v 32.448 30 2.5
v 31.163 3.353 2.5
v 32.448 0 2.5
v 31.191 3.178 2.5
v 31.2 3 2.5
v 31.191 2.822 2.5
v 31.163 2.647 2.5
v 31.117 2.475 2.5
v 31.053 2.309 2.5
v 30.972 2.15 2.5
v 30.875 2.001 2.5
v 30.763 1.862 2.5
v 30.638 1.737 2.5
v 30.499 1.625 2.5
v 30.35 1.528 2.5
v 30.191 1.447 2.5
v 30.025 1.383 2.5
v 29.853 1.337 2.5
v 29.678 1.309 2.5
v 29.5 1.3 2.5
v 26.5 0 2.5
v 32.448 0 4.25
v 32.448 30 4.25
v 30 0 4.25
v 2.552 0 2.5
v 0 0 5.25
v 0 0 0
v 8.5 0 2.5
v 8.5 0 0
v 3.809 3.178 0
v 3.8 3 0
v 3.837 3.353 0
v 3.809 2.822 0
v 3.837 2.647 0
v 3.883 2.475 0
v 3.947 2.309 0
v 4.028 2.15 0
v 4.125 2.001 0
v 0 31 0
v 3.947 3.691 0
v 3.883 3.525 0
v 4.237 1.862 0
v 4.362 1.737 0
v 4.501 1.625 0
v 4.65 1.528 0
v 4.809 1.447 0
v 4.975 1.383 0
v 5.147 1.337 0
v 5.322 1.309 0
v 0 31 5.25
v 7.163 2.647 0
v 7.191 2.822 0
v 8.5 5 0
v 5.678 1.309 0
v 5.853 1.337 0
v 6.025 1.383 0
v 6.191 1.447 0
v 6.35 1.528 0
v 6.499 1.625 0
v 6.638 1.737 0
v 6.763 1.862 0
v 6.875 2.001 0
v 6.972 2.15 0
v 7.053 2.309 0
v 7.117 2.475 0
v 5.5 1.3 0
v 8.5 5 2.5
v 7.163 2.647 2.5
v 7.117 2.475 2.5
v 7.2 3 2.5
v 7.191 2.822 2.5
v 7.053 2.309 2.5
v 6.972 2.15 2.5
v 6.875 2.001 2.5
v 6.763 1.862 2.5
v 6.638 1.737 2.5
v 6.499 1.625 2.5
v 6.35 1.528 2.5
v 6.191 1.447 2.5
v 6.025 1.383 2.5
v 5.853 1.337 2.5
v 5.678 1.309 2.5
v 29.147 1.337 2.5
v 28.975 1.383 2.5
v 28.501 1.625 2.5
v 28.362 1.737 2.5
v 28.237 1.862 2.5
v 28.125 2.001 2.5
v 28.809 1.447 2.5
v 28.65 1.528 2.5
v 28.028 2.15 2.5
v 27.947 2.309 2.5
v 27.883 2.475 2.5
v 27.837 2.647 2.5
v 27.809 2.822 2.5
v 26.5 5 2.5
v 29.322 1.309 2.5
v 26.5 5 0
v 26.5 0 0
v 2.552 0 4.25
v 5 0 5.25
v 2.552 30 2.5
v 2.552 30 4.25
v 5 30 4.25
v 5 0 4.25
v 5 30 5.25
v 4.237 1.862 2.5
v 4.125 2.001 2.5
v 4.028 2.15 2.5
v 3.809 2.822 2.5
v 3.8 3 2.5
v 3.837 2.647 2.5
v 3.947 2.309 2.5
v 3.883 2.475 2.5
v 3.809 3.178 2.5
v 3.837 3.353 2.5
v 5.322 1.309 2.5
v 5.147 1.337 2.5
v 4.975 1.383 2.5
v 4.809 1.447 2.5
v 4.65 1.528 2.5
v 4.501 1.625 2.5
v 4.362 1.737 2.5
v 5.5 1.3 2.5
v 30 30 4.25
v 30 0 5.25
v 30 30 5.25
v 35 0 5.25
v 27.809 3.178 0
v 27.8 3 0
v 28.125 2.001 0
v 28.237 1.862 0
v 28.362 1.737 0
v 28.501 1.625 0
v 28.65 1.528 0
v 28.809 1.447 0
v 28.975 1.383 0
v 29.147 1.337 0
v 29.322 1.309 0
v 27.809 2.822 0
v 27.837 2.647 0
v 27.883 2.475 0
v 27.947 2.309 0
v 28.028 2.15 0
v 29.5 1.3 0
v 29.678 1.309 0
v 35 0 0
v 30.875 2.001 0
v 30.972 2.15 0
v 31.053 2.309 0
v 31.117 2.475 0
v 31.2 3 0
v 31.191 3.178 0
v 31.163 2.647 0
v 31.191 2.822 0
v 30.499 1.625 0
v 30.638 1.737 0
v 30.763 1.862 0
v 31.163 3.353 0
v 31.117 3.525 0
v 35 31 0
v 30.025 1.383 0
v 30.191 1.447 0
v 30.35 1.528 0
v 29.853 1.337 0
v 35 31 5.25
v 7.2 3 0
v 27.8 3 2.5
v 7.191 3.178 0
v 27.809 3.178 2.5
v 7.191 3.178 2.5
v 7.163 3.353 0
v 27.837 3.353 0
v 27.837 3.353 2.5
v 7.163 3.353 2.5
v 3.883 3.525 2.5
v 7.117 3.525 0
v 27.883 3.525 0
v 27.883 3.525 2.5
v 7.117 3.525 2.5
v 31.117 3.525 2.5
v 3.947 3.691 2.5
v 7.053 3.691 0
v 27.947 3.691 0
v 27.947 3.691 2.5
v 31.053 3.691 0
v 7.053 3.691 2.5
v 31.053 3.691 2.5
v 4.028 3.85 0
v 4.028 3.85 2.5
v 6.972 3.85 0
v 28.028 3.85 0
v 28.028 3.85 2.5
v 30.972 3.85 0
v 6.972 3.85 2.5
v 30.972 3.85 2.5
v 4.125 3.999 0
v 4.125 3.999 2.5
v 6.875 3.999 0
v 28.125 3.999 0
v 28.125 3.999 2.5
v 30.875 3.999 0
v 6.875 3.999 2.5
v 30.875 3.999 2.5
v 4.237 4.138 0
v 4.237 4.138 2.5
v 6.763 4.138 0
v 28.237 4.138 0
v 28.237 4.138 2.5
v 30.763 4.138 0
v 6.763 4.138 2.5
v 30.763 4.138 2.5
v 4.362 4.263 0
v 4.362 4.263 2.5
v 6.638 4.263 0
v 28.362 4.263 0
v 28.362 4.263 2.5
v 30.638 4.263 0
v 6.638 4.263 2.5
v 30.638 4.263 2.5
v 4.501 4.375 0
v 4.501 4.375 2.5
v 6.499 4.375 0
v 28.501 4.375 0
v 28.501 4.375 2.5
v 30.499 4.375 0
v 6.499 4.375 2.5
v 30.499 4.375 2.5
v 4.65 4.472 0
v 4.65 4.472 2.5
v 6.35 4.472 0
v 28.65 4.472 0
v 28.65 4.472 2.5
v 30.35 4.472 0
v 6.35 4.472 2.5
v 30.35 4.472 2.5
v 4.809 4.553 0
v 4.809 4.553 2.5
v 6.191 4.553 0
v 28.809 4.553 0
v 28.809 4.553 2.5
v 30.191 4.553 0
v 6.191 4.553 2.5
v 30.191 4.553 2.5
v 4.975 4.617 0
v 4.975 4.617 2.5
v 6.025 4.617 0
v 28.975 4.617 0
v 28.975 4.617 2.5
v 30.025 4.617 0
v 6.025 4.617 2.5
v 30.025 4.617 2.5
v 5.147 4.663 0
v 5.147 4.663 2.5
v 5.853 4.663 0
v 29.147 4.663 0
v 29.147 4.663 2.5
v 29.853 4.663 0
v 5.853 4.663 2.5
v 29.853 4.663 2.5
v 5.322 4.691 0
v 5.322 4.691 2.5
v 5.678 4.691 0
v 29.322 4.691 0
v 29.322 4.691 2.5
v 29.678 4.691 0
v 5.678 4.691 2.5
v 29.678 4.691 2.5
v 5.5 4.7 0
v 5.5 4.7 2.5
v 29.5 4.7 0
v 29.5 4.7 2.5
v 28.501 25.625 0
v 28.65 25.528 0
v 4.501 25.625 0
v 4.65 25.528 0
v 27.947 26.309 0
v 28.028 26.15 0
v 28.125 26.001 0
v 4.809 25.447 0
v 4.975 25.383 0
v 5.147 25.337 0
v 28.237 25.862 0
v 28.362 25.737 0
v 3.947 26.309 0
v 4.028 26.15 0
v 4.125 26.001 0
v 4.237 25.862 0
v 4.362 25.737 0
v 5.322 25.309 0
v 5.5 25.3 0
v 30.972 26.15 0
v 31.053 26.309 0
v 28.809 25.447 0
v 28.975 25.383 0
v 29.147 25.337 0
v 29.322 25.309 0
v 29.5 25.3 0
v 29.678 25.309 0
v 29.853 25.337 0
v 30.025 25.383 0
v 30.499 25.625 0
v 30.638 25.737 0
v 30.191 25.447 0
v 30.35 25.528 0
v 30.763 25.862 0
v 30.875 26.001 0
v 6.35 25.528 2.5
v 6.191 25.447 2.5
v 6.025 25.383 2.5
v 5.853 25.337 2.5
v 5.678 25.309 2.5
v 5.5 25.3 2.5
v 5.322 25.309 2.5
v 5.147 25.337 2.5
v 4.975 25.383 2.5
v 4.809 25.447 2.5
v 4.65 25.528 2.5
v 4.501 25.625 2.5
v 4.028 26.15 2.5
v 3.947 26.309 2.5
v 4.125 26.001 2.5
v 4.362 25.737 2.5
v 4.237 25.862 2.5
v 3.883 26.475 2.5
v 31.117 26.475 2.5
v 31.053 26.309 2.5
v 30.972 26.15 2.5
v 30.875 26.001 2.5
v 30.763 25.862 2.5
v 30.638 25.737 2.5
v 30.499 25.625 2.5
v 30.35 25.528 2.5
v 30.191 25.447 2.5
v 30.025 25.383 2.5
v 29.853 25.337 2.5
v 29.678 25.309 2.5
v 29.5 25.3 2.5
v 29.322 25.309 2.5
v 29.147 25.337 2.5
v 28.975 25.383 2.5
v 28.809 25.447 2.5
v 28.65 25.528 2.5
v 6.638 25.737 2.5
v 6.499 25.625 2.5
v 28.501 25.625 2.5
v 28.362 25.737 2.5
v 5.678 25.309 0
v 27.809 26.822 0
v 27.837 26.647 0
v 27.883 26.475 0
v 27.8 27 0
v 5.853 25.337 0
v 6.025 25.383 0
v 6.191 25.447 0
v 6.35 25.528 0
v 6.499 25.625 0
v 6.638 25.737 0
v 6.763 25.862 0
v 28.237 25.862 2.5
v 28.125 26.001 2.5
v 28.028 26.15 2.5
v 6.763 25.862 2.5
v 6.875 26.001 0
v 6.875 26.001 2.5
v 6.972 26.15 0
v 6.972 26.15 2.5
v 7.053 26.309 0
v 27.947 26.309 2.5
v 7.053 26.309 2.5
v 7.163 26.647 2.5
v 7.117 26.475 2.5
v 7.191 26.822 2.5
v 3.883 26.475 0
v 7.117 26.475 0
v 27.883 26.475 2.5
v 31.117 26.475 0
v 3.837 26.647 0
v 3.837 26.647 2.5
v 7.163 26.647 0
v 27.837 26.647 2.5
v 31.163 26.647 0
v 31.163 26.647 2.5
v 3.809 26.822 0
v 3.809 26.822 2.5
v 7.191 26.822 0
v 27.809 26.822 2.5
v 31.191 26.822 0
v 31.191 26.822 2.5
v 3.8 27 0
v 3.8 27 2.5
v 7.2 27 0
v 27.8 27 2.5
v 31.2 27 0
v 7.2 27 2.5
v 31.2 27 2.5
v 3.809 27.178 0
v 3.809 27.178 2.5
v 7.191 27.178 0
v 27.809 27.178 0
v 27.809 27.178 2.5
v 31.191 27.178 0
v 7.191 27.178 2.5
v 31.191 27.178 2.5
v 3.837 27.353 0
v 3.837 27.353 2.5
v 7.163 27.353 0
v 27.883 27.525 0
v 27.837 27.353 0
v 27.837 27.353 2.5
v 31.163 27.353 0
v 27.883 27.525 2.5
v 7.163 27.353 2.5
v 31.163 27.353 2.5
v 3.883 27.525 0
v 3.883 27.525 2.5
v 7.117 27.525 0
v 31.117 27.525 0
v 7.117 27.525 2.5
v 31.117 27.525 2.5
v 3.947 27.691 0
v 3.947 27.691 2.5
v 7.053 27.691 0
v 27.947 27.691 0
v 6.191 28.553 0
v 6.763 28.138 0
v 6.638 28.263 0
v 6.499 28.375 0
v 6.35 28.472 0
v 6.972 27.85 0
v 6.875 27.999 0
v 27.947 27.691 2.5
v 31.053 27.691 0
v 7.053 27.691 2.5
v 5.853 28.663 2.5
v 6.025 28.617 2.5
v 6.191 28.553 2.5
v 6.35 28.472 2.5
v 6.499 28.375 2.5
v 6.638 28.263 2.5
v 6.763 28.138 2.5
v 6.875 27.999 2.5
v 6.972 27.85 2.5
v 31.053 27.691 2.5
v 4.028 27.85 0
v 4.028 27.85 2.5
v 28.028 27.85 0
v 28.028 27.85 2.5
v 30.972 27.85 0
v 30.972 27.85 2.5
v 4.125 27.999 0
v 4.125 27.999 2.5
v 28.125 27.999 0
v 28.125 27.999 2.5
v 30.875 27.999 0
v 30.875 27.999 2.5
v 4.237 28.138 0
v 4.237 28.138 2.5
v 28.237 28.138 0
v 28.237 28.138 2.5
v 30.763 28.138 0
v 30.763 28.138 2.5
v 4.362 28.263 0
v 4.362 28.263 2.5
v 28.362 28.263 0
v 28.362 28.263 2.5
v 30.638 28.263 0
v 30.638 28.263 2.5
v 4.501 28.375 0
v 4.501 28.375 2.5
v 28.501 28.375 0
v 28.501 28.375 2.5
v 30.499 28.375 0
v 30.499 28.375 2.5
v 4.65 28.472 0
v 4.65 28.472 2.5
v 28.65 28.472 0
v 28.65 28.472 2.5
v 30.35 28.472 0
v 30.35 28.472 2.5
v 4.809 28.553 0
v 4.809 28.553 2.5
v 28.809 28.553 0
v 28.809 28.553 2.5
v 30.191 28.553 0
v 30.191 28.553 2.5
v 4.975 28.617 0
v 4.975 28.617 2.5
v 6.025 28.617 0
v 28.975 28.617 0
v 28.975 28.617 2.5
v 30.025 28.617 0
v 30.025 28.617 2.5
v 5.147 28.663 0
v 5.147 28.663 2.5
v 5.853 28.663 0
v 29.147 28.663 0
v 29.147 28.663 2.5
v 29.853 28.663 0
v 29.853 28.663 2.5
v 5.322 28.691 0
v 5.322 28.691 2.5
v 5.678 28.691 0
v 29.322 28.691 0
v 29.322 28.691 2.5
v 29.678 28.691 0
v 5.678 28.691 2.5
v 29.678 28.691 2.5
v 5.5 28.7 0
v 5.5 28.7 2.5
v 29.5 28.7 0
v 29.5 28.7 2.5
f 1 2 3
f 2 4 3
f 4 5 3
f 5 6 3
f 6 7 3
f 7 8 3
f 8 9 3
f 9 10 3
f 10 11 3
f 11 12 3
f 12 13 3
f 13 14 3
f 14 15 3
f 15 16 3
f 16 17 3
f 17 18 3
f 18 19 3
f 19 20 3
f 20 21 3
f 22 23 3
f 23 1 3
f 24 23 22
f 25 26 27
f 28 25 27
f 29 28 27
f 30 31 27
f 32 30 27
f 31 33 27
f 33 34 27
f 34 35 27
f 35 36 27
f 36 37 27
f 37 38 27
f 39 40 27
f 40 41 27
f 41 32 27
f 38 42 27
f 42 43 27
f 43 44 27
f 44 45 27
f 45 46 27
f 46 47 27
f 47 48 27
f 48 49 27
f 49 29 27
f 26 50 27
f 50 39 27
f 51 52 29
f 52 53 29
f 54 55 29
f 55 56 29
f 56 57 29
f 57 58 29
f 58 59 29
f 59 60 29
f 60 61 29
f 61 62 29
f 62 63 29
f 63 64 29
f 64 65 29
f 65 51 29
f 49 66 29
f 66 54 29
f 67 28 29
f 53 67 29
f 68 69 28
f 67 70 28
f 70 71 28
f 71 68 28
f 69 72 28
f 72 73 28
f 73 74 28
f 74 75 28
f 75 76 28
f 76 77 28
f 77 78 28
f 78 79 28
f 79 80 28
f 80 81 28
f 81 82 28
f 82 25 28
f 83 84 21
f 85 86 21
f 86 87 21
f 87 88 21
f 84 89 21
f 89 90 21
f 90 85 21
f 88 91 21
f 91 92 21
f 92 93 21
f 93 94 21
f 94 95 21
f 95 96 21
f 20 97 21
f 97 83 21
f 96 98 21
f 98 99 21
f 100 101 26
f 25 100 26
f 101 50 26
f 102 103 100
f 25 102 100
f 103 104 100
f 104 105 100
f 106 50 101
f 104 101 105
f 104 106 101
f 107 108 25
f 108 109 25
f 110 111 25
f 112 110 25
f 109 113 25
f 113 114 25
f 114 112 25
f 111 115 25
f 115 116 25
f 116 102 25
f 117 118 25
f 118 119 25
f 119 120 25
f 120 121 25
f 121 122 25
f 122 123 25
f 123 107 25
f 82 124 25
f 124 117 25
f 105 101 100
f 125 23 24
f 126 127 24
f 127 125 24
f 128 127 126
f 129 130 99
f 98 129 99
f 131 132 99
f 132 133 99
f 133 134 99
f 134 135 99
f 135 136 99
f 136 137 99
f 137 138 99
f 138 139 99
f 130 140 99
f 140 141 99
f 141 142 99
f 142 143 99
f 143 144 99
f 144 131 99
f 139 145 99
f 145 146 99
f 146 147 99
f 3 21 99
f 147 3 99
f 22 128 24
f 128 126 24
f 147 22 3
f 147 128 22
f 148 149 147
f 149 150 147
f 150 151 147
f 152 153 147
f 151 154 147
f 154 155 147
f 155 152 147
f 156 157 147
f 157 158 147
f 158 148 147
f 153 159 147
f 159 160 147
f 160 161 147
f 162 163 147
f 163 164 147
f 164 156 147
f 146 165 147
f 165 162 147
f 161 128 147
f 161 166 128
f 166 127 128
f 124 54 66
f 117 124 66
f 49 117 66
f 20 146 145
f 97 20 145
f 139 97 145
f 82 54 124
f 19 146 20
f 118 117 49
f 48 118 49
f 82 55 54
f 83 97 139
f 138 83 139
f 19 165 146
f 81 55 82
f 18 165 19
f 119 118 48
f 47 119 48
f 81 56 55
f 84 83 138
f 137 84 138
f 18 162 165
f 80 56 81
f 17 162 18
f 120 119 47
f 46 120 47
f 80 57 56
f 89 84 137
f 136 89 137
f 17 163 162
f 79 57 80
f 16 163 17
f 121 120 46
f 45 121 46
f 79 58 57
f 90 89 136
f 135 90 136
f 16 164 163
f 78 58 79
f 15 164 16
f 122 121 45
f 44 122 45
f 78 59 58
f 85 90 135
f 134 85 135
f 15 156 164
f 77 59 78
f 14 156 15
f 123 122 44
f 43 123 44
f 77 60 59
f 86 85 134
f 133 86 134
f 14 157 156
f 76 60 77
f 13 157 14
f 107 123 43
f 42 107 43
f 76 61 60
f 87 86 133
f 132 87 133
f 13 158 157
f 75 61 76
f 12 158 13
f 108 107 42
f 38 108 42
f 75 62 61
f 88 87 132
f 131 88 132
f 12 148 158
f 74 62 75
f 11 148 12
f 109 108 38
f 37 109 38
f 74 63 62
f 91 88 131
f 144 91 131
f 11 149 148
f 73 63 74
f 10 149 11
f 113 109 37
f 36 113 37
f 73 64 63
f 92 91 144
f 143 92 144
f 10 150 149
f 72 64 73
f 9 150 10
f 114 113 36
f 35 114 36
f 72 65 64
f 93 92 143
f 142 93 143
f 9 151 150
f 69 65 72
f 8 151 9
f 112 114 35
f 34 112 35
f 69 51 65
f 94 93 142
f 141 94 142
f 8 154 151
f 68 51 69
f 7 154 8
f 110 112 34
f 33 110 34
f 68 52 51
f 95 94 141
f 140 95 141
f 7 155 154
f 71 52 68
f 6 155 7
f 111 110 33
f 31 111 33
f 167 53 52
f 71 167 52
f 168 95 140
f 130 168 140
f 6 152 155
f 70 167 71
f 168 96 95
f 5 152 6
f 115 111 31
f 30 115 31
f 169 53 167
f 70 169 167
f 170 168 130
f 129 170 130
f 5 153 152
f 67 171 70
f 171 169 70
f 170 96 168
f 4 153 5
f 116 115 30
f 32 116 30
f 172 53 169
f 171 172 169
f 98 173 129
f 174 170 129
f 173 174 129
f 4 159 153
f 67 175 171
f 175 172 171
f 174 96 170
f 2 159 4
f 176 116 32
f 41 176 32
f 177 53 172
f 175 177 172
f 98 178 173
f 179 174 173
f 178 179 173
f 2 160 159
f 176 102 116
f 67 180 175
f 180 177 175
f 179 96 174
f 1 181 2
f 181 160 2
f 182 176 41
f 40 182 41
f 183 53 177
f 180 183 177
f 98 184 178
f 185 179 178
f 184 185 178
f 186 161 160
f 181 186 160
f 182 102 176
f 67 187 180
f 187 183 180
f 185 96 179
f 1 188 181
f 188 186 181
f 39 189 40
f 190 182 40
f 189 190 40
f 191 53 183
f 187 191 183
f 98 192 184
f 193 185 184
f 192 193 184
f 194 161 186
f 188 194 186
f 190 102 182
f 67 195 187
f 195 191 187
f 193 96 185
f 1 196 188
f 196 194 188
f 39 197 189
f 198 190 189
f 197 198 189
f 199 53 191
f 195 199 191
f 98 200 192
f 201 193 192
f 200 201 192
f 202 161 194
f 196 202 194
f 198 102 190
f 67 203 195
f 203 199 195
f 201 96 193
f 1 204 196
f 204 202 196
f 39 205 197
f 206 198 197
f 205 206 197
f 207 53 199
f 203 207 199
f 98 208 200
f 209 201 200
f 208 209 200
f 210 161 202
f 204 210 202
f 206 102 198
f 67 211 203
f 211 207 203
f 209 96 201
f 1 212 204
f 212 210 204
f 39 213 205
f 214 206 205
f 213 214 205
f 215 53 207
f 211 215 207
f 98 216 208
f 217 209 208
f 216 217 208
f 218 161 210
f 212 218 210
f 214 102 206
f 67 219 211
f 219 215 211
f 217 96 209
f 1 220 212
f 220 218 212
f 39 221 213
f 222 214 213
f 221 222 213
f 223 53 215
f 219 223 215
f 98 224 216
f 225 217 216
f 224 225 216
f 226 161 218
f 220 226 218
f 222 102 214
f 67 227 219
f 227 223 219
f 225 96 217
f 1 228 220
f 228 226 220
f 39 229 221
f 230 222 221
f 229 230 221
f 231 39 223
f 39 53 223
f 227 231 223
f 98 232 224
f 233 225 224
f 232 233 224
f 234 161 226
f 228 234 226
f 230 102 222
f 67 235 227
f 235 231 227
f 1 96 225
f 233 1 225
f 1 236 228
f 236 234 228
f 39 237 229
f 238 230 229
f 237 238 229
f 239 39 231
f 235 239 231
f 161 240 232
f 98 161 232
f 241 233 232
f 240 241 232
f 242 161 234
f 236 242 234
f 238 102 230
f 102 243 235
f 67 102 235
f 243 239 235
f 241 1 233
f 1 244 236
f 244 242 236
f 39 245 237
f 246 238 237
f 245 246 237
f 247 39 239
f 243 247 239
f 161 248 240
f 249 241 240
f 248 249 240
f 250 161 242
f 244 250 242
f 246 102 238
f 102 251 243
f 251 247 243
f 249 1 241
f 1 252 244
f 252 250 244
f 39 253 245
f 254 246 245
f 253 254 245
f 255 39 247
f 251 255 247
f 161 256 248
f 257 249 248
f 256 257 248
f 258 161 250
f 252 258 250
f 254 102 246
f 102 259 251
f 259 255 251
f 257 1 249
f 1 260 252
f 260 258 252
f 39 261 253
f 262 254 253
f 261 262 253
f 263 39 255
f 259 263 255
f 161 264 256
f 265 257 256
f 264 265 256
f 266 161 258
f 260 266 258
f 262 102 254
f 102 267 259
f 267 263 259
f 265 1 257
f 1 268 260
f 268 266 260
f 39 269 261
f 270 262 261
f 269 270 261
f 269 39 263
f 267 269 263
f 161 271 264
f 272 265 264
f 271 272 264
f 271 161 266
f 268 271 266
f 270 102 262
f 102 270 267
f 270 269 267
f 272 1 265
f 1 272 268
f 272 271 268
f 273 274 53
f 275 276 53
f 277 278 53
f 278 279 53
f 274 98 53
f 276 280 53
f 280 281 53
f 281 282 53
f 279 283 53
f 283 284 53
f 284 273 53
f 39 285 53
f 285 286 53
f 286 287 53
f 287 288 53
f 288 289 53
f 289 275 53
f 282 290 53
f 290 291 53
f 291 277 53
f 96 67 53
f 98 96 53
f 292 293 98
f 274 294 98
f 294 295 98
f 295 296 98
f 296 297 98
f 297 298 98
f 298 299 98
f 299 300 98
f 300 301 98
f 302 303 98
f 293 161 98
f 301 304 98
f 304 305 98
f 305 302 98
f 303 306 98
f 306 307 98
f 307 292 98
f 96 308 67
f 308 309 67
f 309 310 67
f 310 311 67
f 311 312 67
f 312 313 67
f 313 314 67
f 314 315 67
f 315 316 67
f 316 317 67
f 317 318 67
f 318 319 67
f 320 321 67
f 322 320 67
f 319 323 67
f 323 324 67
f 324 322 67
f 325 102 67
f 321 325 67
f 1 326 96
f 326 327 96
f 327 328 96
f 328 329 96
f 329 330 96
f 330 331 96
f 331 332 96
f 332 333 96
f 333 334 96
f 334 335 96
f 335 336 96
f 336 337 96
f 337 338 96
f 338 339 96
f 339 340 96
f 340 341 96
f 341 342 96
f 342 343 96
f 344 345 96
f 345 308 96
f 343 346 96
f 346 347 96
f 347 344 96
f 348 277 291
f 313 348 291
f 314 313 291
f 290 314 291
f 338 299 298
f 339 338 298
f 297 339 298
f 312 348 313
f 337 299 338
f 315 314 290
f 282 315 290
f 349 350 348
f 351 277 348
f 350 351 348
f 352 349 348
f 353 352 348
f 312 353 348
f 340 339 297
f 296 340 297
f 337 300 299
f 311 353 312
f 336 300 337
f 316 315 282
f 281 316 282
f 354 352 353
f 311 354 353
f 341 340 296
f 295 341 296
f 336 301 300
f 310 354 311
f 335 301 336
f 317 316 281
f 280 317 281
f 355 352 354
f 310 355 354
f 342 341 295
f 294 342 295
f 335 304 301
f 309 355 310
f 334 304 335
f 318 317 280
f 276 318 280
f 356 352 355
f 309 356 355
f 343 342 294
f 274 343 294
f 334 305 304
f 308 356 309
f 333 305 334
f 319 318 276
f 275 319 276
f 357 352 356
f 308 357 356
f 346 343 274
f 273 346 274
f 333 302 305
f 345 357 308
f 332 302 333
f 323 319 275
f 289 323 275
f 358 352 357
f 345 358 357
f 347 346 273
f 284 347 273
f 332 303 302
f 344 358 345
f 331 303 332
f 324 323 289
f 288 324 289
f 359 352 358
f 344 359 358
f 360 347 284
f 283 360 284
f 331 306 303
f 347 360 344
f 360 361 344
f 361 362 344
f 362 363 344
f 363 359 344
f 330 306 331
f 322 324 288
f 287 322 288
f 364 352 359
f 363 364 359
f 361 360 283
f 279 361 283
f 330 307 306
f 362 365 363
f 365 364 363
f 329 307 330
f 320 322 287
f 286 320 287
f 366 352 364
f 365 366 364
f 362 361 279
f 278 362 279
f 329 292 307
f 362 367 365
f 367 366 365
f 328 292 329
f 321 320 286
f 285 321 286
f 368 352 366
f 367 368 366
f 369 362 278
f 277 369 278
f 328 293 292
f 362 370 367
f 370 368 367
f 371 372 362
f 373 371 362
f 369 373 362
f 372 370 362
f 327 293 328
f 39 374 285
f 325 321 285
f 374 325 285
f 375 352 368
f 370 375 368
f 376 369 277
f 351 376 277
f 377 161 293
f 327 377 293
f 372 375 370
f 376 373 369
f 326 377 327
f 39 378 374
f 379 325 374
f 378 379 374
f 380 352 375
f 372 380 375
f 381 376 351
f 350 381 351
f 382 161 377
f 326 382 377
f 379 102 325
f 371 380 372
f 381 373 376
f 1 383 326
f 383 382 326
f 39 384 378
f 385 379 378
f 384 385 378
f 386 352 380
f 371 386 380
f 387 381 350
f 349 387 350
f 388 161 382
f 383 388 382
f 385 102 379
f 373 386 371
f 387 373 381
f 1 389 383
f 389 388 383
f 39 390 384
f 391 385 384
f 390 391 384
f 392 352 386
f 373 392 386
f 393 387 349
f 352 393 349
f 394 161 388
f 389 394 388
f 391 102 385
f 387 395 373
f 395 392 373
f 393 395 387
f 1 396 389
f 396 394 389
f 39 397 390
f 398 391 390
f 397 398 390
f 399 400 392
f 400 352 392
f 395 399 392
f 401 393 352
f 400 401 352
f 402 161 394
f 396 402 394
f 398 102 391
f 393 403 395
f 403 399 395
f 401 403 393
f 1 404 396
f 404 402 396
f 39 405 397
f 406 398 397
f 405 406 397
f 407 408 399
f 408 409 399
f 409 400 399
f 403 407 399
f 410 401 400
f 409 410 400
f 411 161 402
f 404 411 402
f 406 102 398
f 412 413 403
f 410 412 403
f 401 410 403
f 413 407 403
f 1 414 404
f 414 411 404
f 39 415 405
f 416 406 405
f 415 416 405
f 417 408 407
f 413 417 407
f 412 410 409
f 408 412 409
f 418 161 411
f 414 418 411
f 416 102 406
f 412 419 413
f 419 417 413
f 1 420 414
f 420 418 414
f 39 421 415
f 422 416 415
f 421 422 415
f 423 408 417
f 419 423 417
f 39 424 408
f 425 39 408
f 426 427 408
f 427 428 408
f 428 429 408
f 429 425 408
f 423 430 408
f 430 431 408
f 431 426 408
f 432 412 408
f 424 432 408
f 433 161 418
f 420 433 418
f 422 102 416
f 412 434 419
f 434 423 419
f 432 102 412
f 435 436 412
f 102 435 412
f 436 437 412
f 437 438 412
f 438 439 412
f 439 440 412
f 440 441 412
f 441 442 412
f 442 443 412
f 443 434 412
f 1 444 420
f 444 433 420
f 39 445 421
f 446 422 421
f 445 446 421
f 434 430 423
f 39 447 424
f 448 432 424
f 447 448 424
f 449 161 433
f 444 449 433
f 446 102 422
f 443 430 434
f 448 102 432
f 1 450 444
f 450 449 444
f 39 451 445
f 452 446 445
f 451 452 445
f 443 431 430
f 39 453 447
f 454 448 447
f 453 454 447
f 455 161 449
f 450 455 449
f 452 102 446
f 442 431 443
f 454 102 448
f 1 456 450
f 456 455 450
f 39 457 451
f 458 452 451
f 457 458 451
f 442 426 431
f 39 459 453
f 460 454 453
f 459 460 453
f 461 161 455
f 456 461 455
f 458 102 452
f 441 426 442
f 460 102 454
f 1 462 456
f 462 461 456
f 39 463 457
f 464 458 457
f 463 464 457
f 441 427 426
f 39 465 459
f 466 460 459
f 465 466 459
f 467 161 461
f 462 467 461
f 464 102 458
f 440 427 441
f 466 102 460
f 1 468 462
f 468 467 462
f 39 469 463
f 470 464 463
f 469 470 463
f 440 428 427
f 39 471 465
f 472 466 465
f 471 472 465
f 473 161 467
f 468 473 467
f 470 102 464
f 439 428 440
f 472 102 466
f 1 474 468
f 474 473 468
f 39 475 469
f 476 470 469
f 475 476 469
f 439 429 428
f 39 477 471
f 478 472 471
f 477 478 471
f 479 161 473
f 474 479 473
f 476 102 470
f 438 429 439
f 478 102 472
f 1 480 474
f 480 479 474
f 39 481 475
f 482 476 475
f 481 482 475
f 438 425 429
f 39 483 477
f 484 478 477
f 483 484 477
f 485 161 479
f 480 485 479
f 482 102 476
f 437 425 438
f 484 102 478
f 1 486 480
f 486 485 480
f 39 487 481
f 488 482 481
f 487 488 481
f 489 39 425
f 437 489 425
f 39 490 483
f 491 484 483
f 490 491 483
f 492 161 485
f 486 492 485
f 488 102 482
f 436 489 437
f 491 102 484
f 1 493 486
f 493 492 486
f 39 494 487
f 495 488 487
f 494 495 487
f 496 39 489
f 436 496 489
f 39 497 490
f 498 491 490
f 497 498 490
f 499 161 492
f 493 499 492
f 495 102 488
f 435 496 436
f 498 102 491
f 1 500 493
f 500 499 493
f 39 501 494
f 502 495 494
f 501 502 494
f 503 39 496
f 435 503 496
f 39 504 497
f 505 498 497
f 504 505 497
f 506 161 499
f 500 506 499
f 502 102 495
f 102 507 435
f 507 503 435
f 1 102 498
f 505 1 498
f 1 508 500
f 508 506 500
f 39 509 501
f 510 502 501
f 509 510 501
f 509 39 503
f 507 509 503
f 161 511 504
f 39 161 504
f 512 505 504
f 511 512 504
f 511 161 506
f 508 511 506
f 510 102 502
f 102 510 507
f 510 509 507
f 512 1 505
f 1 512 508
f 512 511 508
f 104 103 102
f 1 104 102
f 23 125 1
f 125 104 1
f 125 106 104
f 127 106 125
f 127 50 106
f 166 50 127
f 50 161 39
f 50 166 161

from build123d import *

# Parameters (mm, degrees)
SKETCH1_W           = 35
SKETCH1_H           = 30
SKETCH1_R           = 1.7
BOSS_EXTRUDE1_DEPTH = 2.5
SKETCH3_W           = 18
SKETCH3_H           = 5
CUT_EXTRUDE1_DEPTH  = 5
SKETCH4_W           = 2.551904925
SKETCH4_H           = 30
BOSS_EXTRUDE2_DEPTH = 1.75
SKETCH5_W           = 2.448095075
SKETCH5_H           = 30
SKETCH5_W_2         = 2.551904925
SKETCH5_W_3         = 5
BOSS_EXTRUDE3_DEPTH = 1
SKETCH6_W           = 35
SKETCH6_H           = 5.25
BOSS_EXTRUDE4_DEPTH = 1


with BuildPart() as part:
    # Sketch1 → Boss-Extrude1 (new body)
    with BuildSketch(Plane.XY):
        with Locations((17.5, 15)):
            Rectangle(SKETCH1_W, SKETCH1_H)
        with Locations((5.5, 27)):
            Circle(SKETCH1_R, mode=Mode.SUBTRACT)
        with Locations((29.5, 27)):
            Circle(SKETCH1_R, mode=Mode.SUBTRACT)
        with Locations((29.5, 3)):
            Circle(SKETCH1_R, mode=Mode.SUBTRACT)
        with Locations((5.5, 3)):
            Circle(SKETCH1_R, mode=Mode.SUBTRACT)
    extrude(amount=BOSS_EXTRUDE1_DEPTH)

    # Sketch3 → Cut-Extrude1 (cut)
    with BuildSketch(Plane.XY.offset(2.5)):
        with Locations((17.5, 2.5)):
            Rectangle(SKETCH3_W, SKETCH3_H)
    extrude(amount=-CUT_EXTRUDE1_DEPTH, mode=Mode.SUBTRACT)

    # Sketch4 → Boss-Extrude2 (add)
    with BuildSketch(Plane.XY.offset(2.5)):
        with Locations((1.275952463, 15)):
            Rectangle(SKETCH4_W, SKETCH4_H)
        with Locations((33.724047537, 15)):
            Rectangle(SKETCH4_W, SKETCH4_H)
    extrude(amount=BOSS_EXTRUDE2_DEPTH)

    # Sketch5 → Boss-Extrude3 (add)
    with BuildSketch(Plane.XY.offset(4.25)):
        with Locations((3.775952463, 15)):
            Rectangle(SKETCH5_W, SKETCH5_H)
        with Locations((1.275952463, 15)):
            Rectangle(SKETCH5_W_2, SKETCH5_H)
        with Locations((32.5, 15)):
            Rectangle(SKETCH5_W_3, SKETCH5_H)
    extrude(amount=BOSS_EXTRUDE3_DEPTH)

    # Sketch6 → Boss-Extrude4 (add)
    with BuildSketch(Plane(origin=(0, 30, 0), x_dir=(1, 0, 0), z_dir=(0, 1, 0))):
        with Locations((17.5, -2.625)):
            Rectangle(SKETCH6_W, SKETCH6_H)
    extrude(amount=BOSS_EXTRUDE4_DEPTH)


solid = part.part
